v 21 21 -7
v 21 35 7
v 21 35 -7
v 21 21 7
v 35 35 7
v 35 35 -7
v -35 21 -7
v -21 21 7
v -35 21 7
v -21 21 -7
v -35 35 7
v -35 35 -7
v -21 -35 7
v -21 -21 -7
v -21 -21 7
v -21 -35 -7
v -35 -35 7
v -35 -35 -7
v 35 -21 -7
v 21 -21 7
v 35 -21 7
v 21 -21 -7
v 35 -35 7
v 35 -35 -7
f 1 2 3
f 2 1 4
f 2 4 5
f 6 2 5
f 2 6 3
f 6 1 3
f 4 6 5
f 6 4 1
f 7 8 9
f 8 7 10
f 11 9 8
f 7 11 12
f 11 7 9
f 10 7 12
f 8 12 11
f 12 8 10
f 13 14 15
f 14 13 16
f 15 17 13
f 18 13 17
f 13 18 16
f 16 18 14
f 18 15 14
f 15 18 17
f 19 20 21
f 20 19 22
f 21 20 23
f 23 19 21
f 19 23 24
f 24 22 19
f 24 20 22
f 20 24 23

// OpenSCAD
// file: def.scad
block_size_3 = 19;
block_size_4 = 16;
block_size_5 = 14;
block_size_6 = 12.5;
block_size_7 = 11;
block_size_8 = 10;

inf = 1000;

round_radius = 1;
sticker_margin = 2.5;
sticker_round_radius = 0.75;

module _block(size) {
    minkowski() {
        cube([size - round_radius * 2, size - round_radius * 2, size - round_radius * 2], center = true);
        sphere(r = round_radius, $fn = 24);
    }
}

module _selector_0(size) {
    cube([size - 0.2, size - 0.2, size - 0.2], center = true);
}

module _sticker(size) {
    minkowski() {
        cube([size - sticker_margin * 2, size - sticker_margin * 2, 0.1], center = true);
        cylinder(r = sticker_round_radius, h = 0.1, $fn = 24);
    }
}

module _selector_corner_cw(size) {
    difference() {
        cube([size, size, size], center = true);
        rotate([0, -45, 0])
            translate([-inf, -inf, 0])
                cube([inf * 2, inf * 2, inf]);
        rotate([90, 0, 45])
            translate([-inf, -inf, 0])
                cube([inf * 2, inf * 2, inf]);
    }
}

module _selector_corner_ccw(size) {
    difference() {
        cube([size, size, size], center = true);
        rotate([45, 0, 0])
            translate([-inf, -inf, 0])
                cube([inf * 2, inf * 2, inf]);
        rotate([0, -90, -45])
            translate([-inf, -inf, 0])
                cube([inf * 2, inf * 2, inf]);
    }
}

module _selector_edge_cw(size) {
    difference() {
        cube([size, size, size], center = true);
        rotate([90, 0, 45])
            translate([-inf, -inf, 0])
                cube([inf * 2, inf * 2, inf]);
    }
}

module _selector_edge_ccw(size) {
    difference() {
        cube([size, size, size], center = true);
        rotate([0, -90, -45])
            translate([-inf, -inf, 0])
                cube([inf * 2, inf * 2, inf]);
    }
}
// main file
include <def.scad>

for (deg = [0 : 90 : 270])
    rotate([0, 0, deg])
        translate([block_size_5 * 2, block_size_5 * 2, 0])
            _selector_edge_cw(block_size_5);
